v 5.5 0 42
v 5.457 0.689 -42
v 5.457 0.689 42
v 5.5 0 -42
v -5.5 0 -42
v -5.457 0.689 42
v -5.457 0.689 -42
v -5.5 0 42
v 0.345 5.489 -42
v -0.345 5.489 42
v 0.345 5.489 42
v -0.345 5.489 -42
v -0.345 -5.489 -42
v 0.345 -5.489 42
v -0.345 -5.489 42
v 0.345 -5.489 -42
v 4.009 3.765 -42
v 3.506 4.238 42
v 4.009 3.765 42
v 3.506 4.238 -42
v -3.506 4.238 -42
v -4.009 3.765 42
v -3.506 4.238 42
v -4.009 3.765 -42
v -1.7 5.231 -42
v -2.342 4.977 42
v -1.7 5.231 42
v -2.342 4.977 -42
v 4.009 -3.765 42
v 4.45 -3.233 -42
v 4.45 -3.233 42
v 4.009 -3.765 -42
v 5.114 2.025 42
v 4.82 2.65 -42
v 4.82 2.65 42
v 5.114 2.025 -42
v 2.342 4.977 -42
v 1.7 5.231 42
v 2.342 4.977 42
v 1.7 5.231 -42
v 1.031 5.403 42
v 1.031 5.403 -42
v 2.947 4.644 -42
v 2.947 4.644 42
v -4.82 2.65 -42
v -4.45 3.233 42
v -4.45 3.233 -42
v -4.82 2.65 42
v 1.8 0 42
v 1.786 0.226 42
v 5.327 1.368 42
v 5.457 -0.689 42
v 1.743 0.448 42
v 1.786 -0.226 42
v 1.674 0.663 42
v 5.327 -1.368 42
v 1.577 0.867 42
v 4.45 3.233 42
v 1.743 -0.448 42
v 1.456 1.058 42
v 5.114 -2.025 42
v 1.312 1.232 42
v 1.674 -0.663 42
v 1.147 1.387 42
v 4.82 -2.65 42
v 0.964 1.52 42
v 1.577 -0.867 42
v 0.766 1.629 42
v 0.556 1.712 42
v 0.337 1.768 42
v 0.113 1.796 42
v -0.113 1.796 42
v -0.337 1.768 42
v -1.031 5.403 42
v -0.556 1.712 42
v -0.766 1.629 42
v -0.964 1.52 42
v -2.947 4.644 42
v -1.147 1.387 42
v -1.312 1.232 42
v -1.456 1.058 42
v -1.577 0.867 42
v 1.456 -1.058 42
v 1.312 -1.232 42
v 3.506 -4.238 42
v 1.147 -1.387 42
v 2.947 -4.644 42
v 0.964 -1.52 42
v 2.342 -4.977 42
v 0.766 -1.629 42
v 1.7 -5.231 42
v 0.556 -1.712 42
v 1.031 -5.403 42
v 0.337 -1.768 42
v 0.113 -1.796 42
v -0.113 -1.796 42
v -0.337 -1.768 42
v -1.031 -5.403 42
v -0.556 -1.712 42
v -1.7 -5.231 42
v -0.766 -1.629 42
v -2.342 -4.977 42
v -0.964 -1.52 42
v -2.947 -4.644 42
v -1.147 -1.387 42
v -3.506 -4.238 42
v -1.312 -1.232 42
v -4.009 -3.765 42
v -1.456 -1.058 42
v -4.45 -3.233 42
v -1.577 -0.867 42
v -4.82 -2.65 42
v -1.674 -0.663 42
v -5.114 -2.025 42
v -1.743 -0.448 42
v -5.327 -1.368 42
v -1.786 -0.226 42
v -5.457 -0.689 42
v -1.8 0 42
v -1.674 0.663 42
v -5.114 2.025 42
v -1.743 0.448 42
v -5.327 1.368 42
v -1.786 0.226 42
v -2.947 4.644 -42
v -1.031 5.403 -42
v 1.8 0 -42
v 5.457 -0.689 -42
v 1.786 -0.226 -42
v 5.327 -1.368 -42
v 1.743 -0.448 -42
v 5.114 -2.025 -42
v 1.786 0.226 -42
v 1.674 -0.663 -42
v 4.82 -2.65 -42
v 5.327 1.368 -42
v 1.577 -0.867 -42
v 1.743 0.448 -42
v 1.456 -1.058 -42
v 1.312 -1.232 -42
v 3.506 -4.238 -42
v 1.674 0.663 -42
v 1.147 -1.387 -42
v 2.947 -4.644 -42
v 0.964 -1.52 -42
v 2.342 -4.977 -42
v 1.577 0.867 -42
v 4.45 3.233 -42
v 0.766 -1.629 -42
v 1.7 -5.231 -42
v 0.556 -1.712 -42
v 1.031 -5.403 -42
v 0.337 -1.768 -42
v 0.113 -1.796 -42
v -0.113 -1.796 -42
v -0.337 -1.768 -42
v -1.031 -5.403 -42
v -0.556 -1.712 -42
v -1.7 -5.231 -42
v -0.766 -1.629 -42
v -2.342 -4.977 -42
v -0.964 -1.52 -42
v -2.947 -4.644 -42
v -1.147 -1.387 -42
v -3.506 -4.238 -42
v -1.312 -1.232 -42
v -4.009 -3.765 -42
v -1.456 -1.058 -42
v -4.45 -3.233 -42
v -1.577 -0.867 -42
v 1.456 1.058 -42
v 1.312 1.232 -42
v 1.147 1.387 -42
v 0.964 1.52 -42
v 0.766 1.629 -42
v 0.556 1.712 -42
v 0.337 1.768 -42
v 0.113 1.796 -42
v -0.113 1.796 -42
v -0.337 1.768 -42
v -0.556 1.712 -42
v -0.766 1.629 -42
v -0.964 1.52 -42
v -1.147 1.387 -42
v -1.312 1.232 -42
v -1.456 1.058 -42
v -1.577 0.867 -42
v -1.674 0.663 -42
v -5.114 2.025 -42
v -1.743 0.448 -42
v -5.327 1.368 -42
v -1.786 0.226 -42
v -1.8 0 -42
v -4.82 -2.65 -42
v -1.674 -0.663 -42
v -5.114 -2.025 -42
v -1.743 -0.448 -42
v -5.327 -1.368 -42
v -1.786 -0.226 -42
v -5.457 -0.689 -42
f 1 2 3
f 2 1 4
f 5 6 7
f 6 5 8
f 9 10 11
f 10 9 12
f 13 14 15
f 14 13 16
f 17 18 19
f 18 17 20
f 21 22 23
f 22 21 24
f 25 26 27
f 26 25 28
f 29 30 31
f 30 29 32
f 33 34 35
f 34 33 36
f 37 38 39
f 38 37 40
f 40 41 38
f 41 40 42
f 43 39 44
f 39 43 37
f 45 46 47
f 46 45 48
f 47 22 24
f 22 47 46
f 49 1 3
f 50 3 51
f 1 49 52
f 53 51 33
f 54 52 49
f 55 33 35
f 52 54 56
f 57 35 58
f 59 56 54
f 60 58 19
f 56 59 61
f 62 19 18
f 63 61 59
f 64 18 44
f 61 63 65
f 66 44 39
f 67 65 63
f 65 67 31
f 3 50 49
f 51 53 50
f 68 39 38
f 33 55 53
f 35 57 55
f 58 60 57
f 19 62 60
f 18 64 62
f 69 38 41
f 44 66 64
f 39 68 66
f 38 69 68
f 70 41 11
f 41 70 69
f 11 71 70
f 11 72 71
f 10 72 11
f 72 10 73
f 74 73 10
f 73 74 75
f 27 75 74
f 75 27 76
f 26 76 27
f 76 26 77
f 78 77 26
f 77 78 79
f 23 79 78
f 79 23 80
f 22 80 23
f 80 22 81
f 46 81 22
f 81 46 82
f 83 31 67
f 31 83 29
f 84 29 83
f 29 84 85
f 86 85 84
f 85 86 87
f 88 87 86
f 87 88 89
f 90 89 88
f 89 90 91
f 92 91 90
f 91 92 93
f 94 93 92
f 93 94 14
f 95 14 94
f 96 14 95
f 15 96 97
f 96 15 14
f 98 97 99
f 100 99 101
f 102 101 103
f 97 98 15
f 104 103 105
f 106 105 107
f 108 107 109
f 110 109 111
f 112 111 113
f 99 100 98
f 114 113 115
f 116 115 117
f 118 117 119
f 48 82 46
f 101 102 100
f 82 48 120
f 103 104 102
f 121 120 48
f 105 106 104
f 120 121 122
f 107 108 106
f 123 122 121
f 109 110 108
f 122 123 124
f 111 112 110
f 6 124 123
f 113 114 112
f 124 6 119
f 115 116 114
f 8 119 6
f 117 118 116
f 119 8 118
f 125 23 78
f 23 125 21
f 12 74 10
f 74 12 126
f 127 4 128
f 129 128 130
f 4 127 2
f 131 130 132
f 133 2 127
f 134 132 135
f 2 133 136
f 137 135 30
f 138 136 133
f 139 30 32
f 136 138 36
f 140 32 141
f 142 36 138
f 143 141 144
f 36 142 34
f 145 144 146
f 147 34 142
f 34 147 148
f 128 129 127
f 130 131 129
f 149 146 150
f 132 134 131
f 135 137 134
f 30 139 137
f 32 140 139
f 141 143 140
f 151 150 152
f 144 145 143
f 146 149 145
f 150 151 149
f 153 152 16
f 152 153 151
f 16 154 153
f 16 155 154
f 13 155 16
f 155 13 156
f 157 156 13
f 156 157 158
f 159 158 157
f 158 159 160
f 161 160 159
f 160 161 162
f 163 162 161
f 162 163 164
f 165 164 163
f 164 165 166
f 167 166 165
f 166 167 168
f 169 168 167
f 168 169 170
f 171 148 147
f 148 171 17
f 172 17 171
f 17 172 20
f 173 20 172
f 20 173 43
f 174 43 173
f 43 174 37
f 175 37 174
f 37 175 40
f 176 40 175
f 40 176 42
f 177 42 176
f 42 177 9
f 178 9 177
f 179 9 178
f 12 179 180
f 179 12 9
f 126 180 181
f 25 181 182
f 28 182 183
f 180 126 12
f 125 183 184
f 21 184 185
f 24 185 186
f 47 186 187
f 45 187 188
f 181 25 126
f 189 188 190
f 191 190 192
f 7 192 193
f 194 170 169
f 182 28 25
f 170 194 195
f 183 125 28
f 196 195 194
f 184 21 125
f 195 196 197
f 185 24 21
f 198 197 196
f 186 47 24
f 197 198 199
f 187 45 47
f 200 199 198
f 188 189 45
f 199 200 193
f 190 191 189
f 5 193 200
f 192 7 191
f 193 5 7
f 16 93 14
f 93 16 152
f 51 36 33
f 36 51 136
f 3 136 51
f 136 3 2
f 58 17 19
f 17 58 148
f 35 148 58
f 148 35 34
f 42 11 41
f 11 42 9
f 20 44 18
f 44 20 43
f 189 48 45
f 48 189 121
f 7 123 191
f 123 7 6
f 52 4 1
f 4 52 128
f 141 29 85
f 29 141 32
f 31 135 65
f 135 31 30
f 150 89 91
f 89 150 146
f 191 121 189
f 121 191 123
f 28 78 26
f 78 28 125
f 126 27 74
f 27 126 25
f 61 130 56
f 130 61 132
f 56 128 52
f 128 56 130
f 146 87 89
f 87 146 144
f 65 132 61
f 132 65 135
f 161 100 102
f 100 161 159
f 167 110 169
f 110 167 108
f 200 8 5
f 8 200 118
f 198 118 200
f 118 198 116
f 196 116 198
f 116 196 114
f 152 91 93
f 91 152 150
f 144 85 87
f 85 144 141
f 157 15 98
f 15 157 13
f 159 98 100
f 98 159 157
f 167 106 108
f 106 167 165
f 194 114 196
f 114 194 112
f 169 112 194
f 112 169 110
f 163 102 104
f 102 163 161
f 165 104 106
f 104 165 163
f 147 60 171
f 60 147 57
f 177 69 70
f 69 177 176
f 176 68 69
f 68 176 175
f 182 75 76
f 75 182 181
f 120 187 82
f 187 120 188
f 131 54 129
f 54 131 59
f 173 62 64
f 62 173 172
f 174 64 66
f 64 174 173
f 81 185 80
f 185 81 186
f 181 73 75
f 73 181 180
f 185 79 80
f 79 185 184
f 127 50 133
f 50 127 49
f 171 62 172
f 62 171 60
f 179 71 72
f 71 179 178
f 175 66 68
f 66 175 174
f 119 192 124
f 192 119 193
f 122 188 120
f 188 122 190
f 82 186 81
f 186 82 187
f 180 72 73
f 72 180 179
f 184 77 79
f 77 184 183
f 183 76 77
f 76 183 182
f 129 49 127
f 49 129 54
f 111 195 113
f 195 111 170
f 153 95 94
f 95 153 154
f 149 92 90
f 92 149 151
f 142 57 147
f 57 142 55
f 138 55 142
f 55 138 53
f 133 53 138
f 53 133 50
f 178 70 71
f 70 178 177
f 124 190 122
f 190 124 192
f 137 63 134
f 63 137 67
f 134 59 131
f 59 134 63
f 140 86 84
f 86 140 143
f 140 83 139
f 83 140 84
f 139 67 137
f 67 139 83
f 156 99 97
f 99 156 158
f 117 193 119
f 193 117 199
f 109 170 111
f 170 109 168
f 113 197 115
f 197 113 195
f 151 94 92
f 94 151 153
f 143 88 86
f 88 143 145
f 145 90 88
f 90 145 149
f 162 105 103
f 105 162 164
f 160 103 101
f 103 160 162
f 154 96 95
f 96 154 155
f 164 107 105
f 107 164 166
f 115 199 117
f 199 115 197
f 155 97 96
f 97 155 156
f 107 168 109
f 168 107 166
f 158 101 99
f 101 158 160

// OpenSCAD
$fn = 50;


difference() {
	union() {
		translate(v = [0, 0, -42.0000000000]) {
			cylinder(h = 84, r = 5.5000000000);
		}
	}
	union() {
		translate(v = [0, 0, -100.0000000000]) {
			cylinder(h = 200, r = 1.8000000000);
		}
	}
}
